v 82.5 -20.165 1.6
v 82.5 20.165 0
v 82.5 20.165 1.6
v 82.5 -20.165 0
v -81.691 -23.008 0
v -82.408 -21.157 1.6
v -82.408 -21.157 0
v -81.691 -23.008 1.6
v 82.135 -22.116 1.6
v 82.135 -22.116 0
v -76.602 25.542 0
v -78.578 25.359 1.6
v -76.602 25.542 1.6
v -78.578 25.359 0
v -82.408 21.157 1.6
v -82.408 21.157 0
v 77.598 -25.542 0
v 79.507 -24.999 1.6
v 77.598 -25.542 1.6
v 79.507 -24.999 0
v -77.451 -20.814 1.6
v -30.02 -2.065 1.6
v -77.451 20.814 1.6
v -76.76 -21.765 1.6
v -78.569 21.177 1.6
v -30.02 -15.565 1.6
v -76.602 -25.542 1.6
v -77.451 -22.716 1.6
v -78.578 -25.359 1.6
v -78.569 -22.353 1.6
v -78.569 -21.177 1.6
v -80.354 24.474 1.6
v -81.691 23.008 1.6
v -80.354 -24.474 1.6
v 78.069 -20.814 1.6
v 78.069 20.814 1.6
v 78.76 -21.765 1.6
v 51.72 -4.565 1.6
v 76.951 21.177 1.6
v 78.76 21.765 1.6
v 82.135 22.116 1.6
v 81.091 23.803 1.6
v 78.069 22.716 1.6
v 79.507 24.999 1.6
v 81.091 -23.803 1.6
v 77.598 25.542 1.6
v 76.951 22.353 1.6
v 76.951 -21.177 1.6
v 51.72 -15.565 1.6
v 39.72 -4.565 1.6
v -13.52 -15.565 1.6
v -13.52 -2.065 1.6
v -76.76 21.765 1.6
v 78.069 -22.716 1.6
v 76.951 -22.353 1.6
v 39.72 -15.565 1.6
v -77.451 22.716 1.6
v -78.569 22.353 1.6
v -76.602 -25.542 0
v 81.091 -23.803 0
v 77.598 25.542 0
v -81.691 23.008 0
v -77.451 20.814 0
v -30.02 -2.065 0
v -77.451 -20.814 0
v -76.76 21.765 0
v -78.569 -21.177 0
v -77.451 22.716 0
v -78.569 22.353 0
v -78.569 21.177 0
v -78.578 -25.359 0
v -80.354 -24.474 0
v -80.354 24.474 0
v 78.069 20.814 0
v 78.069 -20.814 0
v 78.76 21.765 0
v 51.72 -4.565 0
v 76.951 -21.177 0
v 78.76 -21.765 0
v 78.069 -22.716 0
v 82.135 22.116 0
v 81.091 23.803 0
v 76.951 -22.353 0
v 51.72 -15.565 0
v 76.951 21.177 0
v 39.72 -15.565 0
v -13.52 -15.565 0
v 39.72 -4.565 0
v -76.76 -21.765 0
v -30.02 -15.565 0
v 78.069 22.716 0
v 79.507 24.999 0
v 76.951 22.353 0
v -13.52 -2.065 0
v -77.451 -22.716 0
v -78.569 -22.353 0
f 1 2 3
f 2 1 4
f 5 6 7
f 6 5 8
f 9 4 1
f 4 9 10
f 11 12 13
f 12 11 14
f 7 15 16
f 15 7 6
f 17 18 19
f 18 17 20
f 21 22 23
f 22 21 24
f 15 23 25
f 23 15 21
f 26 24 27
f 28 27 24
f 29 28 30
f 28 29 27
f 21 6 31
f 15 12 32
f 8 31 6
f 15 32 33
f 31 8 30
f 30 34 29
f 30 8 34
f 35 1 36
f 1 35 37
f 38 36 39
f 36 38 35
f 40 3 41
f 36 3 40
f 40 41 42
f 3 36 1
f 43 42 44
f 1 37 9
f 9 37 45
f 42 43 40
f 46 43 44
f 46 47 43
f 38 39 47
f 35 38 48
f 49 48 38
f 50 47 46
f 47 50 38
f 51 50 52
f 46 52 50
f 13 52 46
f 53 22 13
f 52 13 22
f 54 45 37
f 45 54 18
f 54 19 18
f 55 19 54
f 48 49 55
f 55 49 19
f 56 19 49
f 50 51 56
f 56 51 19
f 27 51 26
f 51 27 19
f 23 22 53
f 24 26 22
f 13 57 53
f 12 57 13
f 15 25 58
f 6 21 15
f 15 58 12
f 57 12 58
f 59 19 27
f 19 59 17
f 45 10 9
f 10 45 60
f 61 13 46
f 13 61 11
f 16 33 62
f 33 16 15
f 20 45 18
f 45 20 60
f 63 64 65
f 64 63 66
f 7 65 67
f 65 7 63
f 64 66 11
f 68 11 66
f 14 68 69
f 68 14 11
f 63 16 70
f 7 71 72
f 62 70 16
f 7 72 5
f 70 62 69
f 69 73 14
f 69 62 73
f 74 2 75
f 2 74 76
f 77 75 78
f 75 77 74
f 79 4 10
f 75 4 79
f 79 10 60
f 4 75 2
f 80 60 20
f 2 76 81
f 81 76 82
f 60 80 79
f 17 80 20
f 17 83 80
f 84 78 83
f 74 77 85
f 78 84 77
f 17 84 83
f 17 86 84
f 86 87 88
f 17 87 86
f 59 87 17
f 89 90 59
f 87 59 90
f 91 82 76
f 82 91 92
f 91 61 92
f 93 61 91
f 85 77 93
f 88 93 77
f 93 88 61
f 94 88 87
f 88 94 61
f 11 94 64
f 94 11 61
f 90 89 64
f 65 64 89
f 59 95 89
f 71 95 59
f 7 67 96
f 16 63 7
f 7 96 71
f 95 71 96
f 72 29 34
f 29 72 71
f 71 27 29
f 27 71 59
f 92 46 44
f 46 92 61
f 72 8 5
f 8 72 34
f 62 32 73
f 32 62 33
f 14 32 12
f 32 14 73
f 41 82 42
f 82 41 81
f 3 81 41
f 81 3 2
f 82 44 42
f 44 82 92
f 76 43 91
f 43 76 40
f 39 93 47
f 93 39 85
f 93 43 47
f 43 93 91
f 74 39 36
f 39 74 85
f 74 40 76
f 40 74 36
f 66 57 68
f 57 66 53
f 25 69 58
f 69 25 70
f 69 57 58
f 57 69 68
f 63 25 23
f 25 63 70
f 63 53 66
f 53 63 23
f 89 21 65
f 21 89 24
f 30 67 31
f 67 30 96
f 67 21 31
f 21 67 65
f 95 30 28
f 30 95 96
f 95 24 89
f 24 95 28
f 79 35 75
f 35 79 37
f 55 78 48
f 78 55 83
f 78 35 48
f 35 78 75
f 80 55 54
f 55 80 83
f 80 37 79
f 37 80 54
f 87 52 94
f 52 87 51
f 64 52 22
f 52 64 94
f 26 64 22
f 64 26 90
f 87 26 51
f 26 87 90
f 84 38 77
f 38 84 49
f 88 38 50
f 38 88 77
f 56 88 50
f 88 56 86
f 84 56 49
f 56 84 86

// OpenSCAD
// file: src/otvory_conf.scad
//Konfigurace pro otvory

//1B) - LCD 2x16
//vzdalenost der
vzdalenost_der_x = 75;
vzdalenost_der_y = 31;
prumer_otvoru = 2.7;
prumer_sloupku = 5;

//ramecek LCD
ramecek_x = 72;
ramecek_y = 23;

//vyska ramecku LCD
ramecek_vyska = 5;
// file: configuration.scad
//UNIBOX03A
//------------------------------------------------------------
///*

rozmer_x=165;
rozmer_y=51.13;
sila=1.5;

roztec_srouby_x=155.52;
roztec_srouby_y=43.53;
prumer_sroubu=2;
zakulaceni_hrany=5.4;

roztec_der=10.16;
pocet_der_osa_x=15;
// file: src/UNIBOX03A_D01.scad
include <../configuration.scad>


//PLBASE ZAKLADNI
//------------------------------------------------------------

//UNIBOX03A_D01();

module UNIBOX03A_D01(){

difference () {

translate([-(rozmer_x/2-zakulaceni_hrany),-(rozmer_y/2-zakulaceni_hrany),0]) 
minkowski()
    {
	cube([rozmer_x-2*zakulaceni_hrany,rozmer_y-2*zakulaceni_hrany,sila]);         
        cylinder(r=zakulaceni_hrany,h=0.1);
    }
  
//odecet otvory

translate([roztec_srouby_x/2,roztec_srouby_y/2,0])      
    cylinder(sila*5, d=prumer_sroubu, center=true);   
  
translate([-roztec_srouby_x/2,roztec_srouby_y/2,0])      
    cylinder(sila*5, d=prumer_sroubu, center=true);    

translate([-roztec_srouby_x/2,-roztec_srouby_y/2,0])      
    cylinder(sila*5, d=prumer_sroubu, center=true);

translate([roztec_srouby_x/2,-roztec_srouby_y/2,0])      
    cylinder(sila*5, d=prumer_sroubu, center=true);

}
}
// main file
use <src/UNIBOX03A_D01.scad>
use <src/otvory.scad>

include <configuration.scad>
include <src/otvory_conf.scad>


barva_sloupku = "cyan";
barva_listy = "red";
barva_celicka = "green";
barva_plbase = "yellow";

//Předni čeličko
//------------------------------------------------------------

vzdalenost_AL=4; //vzdalenost od hrany čelíčka k vrchní hraně ALbase

difference() {
color(barva_sloupku)
translate([0,0,0])
UNIBOX03A_D01();



posun_modulu_der_x=30;
rotate(a=[-90,0,0])
translate([posun_modulu_der_x*roztec_der-roztec_der*(pocet_der_osa_x-1)/2,0,-rozmer_y/2+vzdalenost_AL])
VLFANT01B(2*sila,roztec_der);
    
posun_modulu_der_x1=0;
rotate(a=[-90,0,0])
translate([posun_modulu_der_x1*roztec_der-roztec_der*(pocet_der_osa_x-1)/2,0,-rozmer_y/2+vzdalenost_AL])

AT32TQ14401A(2*sila,roztec_der); 
    
    
 posun_modulu_der_x2=10;
rotate(a=[-90,0,0])
translate([posun_modulu_der_x2*roztec_der-roztec_der*(pocet_der_osa_x-1)/2,0,-rozmer_y/2+vzdalenost_AL])   
 GPS01B(2*sila,roztec_der);   
    
     }  
